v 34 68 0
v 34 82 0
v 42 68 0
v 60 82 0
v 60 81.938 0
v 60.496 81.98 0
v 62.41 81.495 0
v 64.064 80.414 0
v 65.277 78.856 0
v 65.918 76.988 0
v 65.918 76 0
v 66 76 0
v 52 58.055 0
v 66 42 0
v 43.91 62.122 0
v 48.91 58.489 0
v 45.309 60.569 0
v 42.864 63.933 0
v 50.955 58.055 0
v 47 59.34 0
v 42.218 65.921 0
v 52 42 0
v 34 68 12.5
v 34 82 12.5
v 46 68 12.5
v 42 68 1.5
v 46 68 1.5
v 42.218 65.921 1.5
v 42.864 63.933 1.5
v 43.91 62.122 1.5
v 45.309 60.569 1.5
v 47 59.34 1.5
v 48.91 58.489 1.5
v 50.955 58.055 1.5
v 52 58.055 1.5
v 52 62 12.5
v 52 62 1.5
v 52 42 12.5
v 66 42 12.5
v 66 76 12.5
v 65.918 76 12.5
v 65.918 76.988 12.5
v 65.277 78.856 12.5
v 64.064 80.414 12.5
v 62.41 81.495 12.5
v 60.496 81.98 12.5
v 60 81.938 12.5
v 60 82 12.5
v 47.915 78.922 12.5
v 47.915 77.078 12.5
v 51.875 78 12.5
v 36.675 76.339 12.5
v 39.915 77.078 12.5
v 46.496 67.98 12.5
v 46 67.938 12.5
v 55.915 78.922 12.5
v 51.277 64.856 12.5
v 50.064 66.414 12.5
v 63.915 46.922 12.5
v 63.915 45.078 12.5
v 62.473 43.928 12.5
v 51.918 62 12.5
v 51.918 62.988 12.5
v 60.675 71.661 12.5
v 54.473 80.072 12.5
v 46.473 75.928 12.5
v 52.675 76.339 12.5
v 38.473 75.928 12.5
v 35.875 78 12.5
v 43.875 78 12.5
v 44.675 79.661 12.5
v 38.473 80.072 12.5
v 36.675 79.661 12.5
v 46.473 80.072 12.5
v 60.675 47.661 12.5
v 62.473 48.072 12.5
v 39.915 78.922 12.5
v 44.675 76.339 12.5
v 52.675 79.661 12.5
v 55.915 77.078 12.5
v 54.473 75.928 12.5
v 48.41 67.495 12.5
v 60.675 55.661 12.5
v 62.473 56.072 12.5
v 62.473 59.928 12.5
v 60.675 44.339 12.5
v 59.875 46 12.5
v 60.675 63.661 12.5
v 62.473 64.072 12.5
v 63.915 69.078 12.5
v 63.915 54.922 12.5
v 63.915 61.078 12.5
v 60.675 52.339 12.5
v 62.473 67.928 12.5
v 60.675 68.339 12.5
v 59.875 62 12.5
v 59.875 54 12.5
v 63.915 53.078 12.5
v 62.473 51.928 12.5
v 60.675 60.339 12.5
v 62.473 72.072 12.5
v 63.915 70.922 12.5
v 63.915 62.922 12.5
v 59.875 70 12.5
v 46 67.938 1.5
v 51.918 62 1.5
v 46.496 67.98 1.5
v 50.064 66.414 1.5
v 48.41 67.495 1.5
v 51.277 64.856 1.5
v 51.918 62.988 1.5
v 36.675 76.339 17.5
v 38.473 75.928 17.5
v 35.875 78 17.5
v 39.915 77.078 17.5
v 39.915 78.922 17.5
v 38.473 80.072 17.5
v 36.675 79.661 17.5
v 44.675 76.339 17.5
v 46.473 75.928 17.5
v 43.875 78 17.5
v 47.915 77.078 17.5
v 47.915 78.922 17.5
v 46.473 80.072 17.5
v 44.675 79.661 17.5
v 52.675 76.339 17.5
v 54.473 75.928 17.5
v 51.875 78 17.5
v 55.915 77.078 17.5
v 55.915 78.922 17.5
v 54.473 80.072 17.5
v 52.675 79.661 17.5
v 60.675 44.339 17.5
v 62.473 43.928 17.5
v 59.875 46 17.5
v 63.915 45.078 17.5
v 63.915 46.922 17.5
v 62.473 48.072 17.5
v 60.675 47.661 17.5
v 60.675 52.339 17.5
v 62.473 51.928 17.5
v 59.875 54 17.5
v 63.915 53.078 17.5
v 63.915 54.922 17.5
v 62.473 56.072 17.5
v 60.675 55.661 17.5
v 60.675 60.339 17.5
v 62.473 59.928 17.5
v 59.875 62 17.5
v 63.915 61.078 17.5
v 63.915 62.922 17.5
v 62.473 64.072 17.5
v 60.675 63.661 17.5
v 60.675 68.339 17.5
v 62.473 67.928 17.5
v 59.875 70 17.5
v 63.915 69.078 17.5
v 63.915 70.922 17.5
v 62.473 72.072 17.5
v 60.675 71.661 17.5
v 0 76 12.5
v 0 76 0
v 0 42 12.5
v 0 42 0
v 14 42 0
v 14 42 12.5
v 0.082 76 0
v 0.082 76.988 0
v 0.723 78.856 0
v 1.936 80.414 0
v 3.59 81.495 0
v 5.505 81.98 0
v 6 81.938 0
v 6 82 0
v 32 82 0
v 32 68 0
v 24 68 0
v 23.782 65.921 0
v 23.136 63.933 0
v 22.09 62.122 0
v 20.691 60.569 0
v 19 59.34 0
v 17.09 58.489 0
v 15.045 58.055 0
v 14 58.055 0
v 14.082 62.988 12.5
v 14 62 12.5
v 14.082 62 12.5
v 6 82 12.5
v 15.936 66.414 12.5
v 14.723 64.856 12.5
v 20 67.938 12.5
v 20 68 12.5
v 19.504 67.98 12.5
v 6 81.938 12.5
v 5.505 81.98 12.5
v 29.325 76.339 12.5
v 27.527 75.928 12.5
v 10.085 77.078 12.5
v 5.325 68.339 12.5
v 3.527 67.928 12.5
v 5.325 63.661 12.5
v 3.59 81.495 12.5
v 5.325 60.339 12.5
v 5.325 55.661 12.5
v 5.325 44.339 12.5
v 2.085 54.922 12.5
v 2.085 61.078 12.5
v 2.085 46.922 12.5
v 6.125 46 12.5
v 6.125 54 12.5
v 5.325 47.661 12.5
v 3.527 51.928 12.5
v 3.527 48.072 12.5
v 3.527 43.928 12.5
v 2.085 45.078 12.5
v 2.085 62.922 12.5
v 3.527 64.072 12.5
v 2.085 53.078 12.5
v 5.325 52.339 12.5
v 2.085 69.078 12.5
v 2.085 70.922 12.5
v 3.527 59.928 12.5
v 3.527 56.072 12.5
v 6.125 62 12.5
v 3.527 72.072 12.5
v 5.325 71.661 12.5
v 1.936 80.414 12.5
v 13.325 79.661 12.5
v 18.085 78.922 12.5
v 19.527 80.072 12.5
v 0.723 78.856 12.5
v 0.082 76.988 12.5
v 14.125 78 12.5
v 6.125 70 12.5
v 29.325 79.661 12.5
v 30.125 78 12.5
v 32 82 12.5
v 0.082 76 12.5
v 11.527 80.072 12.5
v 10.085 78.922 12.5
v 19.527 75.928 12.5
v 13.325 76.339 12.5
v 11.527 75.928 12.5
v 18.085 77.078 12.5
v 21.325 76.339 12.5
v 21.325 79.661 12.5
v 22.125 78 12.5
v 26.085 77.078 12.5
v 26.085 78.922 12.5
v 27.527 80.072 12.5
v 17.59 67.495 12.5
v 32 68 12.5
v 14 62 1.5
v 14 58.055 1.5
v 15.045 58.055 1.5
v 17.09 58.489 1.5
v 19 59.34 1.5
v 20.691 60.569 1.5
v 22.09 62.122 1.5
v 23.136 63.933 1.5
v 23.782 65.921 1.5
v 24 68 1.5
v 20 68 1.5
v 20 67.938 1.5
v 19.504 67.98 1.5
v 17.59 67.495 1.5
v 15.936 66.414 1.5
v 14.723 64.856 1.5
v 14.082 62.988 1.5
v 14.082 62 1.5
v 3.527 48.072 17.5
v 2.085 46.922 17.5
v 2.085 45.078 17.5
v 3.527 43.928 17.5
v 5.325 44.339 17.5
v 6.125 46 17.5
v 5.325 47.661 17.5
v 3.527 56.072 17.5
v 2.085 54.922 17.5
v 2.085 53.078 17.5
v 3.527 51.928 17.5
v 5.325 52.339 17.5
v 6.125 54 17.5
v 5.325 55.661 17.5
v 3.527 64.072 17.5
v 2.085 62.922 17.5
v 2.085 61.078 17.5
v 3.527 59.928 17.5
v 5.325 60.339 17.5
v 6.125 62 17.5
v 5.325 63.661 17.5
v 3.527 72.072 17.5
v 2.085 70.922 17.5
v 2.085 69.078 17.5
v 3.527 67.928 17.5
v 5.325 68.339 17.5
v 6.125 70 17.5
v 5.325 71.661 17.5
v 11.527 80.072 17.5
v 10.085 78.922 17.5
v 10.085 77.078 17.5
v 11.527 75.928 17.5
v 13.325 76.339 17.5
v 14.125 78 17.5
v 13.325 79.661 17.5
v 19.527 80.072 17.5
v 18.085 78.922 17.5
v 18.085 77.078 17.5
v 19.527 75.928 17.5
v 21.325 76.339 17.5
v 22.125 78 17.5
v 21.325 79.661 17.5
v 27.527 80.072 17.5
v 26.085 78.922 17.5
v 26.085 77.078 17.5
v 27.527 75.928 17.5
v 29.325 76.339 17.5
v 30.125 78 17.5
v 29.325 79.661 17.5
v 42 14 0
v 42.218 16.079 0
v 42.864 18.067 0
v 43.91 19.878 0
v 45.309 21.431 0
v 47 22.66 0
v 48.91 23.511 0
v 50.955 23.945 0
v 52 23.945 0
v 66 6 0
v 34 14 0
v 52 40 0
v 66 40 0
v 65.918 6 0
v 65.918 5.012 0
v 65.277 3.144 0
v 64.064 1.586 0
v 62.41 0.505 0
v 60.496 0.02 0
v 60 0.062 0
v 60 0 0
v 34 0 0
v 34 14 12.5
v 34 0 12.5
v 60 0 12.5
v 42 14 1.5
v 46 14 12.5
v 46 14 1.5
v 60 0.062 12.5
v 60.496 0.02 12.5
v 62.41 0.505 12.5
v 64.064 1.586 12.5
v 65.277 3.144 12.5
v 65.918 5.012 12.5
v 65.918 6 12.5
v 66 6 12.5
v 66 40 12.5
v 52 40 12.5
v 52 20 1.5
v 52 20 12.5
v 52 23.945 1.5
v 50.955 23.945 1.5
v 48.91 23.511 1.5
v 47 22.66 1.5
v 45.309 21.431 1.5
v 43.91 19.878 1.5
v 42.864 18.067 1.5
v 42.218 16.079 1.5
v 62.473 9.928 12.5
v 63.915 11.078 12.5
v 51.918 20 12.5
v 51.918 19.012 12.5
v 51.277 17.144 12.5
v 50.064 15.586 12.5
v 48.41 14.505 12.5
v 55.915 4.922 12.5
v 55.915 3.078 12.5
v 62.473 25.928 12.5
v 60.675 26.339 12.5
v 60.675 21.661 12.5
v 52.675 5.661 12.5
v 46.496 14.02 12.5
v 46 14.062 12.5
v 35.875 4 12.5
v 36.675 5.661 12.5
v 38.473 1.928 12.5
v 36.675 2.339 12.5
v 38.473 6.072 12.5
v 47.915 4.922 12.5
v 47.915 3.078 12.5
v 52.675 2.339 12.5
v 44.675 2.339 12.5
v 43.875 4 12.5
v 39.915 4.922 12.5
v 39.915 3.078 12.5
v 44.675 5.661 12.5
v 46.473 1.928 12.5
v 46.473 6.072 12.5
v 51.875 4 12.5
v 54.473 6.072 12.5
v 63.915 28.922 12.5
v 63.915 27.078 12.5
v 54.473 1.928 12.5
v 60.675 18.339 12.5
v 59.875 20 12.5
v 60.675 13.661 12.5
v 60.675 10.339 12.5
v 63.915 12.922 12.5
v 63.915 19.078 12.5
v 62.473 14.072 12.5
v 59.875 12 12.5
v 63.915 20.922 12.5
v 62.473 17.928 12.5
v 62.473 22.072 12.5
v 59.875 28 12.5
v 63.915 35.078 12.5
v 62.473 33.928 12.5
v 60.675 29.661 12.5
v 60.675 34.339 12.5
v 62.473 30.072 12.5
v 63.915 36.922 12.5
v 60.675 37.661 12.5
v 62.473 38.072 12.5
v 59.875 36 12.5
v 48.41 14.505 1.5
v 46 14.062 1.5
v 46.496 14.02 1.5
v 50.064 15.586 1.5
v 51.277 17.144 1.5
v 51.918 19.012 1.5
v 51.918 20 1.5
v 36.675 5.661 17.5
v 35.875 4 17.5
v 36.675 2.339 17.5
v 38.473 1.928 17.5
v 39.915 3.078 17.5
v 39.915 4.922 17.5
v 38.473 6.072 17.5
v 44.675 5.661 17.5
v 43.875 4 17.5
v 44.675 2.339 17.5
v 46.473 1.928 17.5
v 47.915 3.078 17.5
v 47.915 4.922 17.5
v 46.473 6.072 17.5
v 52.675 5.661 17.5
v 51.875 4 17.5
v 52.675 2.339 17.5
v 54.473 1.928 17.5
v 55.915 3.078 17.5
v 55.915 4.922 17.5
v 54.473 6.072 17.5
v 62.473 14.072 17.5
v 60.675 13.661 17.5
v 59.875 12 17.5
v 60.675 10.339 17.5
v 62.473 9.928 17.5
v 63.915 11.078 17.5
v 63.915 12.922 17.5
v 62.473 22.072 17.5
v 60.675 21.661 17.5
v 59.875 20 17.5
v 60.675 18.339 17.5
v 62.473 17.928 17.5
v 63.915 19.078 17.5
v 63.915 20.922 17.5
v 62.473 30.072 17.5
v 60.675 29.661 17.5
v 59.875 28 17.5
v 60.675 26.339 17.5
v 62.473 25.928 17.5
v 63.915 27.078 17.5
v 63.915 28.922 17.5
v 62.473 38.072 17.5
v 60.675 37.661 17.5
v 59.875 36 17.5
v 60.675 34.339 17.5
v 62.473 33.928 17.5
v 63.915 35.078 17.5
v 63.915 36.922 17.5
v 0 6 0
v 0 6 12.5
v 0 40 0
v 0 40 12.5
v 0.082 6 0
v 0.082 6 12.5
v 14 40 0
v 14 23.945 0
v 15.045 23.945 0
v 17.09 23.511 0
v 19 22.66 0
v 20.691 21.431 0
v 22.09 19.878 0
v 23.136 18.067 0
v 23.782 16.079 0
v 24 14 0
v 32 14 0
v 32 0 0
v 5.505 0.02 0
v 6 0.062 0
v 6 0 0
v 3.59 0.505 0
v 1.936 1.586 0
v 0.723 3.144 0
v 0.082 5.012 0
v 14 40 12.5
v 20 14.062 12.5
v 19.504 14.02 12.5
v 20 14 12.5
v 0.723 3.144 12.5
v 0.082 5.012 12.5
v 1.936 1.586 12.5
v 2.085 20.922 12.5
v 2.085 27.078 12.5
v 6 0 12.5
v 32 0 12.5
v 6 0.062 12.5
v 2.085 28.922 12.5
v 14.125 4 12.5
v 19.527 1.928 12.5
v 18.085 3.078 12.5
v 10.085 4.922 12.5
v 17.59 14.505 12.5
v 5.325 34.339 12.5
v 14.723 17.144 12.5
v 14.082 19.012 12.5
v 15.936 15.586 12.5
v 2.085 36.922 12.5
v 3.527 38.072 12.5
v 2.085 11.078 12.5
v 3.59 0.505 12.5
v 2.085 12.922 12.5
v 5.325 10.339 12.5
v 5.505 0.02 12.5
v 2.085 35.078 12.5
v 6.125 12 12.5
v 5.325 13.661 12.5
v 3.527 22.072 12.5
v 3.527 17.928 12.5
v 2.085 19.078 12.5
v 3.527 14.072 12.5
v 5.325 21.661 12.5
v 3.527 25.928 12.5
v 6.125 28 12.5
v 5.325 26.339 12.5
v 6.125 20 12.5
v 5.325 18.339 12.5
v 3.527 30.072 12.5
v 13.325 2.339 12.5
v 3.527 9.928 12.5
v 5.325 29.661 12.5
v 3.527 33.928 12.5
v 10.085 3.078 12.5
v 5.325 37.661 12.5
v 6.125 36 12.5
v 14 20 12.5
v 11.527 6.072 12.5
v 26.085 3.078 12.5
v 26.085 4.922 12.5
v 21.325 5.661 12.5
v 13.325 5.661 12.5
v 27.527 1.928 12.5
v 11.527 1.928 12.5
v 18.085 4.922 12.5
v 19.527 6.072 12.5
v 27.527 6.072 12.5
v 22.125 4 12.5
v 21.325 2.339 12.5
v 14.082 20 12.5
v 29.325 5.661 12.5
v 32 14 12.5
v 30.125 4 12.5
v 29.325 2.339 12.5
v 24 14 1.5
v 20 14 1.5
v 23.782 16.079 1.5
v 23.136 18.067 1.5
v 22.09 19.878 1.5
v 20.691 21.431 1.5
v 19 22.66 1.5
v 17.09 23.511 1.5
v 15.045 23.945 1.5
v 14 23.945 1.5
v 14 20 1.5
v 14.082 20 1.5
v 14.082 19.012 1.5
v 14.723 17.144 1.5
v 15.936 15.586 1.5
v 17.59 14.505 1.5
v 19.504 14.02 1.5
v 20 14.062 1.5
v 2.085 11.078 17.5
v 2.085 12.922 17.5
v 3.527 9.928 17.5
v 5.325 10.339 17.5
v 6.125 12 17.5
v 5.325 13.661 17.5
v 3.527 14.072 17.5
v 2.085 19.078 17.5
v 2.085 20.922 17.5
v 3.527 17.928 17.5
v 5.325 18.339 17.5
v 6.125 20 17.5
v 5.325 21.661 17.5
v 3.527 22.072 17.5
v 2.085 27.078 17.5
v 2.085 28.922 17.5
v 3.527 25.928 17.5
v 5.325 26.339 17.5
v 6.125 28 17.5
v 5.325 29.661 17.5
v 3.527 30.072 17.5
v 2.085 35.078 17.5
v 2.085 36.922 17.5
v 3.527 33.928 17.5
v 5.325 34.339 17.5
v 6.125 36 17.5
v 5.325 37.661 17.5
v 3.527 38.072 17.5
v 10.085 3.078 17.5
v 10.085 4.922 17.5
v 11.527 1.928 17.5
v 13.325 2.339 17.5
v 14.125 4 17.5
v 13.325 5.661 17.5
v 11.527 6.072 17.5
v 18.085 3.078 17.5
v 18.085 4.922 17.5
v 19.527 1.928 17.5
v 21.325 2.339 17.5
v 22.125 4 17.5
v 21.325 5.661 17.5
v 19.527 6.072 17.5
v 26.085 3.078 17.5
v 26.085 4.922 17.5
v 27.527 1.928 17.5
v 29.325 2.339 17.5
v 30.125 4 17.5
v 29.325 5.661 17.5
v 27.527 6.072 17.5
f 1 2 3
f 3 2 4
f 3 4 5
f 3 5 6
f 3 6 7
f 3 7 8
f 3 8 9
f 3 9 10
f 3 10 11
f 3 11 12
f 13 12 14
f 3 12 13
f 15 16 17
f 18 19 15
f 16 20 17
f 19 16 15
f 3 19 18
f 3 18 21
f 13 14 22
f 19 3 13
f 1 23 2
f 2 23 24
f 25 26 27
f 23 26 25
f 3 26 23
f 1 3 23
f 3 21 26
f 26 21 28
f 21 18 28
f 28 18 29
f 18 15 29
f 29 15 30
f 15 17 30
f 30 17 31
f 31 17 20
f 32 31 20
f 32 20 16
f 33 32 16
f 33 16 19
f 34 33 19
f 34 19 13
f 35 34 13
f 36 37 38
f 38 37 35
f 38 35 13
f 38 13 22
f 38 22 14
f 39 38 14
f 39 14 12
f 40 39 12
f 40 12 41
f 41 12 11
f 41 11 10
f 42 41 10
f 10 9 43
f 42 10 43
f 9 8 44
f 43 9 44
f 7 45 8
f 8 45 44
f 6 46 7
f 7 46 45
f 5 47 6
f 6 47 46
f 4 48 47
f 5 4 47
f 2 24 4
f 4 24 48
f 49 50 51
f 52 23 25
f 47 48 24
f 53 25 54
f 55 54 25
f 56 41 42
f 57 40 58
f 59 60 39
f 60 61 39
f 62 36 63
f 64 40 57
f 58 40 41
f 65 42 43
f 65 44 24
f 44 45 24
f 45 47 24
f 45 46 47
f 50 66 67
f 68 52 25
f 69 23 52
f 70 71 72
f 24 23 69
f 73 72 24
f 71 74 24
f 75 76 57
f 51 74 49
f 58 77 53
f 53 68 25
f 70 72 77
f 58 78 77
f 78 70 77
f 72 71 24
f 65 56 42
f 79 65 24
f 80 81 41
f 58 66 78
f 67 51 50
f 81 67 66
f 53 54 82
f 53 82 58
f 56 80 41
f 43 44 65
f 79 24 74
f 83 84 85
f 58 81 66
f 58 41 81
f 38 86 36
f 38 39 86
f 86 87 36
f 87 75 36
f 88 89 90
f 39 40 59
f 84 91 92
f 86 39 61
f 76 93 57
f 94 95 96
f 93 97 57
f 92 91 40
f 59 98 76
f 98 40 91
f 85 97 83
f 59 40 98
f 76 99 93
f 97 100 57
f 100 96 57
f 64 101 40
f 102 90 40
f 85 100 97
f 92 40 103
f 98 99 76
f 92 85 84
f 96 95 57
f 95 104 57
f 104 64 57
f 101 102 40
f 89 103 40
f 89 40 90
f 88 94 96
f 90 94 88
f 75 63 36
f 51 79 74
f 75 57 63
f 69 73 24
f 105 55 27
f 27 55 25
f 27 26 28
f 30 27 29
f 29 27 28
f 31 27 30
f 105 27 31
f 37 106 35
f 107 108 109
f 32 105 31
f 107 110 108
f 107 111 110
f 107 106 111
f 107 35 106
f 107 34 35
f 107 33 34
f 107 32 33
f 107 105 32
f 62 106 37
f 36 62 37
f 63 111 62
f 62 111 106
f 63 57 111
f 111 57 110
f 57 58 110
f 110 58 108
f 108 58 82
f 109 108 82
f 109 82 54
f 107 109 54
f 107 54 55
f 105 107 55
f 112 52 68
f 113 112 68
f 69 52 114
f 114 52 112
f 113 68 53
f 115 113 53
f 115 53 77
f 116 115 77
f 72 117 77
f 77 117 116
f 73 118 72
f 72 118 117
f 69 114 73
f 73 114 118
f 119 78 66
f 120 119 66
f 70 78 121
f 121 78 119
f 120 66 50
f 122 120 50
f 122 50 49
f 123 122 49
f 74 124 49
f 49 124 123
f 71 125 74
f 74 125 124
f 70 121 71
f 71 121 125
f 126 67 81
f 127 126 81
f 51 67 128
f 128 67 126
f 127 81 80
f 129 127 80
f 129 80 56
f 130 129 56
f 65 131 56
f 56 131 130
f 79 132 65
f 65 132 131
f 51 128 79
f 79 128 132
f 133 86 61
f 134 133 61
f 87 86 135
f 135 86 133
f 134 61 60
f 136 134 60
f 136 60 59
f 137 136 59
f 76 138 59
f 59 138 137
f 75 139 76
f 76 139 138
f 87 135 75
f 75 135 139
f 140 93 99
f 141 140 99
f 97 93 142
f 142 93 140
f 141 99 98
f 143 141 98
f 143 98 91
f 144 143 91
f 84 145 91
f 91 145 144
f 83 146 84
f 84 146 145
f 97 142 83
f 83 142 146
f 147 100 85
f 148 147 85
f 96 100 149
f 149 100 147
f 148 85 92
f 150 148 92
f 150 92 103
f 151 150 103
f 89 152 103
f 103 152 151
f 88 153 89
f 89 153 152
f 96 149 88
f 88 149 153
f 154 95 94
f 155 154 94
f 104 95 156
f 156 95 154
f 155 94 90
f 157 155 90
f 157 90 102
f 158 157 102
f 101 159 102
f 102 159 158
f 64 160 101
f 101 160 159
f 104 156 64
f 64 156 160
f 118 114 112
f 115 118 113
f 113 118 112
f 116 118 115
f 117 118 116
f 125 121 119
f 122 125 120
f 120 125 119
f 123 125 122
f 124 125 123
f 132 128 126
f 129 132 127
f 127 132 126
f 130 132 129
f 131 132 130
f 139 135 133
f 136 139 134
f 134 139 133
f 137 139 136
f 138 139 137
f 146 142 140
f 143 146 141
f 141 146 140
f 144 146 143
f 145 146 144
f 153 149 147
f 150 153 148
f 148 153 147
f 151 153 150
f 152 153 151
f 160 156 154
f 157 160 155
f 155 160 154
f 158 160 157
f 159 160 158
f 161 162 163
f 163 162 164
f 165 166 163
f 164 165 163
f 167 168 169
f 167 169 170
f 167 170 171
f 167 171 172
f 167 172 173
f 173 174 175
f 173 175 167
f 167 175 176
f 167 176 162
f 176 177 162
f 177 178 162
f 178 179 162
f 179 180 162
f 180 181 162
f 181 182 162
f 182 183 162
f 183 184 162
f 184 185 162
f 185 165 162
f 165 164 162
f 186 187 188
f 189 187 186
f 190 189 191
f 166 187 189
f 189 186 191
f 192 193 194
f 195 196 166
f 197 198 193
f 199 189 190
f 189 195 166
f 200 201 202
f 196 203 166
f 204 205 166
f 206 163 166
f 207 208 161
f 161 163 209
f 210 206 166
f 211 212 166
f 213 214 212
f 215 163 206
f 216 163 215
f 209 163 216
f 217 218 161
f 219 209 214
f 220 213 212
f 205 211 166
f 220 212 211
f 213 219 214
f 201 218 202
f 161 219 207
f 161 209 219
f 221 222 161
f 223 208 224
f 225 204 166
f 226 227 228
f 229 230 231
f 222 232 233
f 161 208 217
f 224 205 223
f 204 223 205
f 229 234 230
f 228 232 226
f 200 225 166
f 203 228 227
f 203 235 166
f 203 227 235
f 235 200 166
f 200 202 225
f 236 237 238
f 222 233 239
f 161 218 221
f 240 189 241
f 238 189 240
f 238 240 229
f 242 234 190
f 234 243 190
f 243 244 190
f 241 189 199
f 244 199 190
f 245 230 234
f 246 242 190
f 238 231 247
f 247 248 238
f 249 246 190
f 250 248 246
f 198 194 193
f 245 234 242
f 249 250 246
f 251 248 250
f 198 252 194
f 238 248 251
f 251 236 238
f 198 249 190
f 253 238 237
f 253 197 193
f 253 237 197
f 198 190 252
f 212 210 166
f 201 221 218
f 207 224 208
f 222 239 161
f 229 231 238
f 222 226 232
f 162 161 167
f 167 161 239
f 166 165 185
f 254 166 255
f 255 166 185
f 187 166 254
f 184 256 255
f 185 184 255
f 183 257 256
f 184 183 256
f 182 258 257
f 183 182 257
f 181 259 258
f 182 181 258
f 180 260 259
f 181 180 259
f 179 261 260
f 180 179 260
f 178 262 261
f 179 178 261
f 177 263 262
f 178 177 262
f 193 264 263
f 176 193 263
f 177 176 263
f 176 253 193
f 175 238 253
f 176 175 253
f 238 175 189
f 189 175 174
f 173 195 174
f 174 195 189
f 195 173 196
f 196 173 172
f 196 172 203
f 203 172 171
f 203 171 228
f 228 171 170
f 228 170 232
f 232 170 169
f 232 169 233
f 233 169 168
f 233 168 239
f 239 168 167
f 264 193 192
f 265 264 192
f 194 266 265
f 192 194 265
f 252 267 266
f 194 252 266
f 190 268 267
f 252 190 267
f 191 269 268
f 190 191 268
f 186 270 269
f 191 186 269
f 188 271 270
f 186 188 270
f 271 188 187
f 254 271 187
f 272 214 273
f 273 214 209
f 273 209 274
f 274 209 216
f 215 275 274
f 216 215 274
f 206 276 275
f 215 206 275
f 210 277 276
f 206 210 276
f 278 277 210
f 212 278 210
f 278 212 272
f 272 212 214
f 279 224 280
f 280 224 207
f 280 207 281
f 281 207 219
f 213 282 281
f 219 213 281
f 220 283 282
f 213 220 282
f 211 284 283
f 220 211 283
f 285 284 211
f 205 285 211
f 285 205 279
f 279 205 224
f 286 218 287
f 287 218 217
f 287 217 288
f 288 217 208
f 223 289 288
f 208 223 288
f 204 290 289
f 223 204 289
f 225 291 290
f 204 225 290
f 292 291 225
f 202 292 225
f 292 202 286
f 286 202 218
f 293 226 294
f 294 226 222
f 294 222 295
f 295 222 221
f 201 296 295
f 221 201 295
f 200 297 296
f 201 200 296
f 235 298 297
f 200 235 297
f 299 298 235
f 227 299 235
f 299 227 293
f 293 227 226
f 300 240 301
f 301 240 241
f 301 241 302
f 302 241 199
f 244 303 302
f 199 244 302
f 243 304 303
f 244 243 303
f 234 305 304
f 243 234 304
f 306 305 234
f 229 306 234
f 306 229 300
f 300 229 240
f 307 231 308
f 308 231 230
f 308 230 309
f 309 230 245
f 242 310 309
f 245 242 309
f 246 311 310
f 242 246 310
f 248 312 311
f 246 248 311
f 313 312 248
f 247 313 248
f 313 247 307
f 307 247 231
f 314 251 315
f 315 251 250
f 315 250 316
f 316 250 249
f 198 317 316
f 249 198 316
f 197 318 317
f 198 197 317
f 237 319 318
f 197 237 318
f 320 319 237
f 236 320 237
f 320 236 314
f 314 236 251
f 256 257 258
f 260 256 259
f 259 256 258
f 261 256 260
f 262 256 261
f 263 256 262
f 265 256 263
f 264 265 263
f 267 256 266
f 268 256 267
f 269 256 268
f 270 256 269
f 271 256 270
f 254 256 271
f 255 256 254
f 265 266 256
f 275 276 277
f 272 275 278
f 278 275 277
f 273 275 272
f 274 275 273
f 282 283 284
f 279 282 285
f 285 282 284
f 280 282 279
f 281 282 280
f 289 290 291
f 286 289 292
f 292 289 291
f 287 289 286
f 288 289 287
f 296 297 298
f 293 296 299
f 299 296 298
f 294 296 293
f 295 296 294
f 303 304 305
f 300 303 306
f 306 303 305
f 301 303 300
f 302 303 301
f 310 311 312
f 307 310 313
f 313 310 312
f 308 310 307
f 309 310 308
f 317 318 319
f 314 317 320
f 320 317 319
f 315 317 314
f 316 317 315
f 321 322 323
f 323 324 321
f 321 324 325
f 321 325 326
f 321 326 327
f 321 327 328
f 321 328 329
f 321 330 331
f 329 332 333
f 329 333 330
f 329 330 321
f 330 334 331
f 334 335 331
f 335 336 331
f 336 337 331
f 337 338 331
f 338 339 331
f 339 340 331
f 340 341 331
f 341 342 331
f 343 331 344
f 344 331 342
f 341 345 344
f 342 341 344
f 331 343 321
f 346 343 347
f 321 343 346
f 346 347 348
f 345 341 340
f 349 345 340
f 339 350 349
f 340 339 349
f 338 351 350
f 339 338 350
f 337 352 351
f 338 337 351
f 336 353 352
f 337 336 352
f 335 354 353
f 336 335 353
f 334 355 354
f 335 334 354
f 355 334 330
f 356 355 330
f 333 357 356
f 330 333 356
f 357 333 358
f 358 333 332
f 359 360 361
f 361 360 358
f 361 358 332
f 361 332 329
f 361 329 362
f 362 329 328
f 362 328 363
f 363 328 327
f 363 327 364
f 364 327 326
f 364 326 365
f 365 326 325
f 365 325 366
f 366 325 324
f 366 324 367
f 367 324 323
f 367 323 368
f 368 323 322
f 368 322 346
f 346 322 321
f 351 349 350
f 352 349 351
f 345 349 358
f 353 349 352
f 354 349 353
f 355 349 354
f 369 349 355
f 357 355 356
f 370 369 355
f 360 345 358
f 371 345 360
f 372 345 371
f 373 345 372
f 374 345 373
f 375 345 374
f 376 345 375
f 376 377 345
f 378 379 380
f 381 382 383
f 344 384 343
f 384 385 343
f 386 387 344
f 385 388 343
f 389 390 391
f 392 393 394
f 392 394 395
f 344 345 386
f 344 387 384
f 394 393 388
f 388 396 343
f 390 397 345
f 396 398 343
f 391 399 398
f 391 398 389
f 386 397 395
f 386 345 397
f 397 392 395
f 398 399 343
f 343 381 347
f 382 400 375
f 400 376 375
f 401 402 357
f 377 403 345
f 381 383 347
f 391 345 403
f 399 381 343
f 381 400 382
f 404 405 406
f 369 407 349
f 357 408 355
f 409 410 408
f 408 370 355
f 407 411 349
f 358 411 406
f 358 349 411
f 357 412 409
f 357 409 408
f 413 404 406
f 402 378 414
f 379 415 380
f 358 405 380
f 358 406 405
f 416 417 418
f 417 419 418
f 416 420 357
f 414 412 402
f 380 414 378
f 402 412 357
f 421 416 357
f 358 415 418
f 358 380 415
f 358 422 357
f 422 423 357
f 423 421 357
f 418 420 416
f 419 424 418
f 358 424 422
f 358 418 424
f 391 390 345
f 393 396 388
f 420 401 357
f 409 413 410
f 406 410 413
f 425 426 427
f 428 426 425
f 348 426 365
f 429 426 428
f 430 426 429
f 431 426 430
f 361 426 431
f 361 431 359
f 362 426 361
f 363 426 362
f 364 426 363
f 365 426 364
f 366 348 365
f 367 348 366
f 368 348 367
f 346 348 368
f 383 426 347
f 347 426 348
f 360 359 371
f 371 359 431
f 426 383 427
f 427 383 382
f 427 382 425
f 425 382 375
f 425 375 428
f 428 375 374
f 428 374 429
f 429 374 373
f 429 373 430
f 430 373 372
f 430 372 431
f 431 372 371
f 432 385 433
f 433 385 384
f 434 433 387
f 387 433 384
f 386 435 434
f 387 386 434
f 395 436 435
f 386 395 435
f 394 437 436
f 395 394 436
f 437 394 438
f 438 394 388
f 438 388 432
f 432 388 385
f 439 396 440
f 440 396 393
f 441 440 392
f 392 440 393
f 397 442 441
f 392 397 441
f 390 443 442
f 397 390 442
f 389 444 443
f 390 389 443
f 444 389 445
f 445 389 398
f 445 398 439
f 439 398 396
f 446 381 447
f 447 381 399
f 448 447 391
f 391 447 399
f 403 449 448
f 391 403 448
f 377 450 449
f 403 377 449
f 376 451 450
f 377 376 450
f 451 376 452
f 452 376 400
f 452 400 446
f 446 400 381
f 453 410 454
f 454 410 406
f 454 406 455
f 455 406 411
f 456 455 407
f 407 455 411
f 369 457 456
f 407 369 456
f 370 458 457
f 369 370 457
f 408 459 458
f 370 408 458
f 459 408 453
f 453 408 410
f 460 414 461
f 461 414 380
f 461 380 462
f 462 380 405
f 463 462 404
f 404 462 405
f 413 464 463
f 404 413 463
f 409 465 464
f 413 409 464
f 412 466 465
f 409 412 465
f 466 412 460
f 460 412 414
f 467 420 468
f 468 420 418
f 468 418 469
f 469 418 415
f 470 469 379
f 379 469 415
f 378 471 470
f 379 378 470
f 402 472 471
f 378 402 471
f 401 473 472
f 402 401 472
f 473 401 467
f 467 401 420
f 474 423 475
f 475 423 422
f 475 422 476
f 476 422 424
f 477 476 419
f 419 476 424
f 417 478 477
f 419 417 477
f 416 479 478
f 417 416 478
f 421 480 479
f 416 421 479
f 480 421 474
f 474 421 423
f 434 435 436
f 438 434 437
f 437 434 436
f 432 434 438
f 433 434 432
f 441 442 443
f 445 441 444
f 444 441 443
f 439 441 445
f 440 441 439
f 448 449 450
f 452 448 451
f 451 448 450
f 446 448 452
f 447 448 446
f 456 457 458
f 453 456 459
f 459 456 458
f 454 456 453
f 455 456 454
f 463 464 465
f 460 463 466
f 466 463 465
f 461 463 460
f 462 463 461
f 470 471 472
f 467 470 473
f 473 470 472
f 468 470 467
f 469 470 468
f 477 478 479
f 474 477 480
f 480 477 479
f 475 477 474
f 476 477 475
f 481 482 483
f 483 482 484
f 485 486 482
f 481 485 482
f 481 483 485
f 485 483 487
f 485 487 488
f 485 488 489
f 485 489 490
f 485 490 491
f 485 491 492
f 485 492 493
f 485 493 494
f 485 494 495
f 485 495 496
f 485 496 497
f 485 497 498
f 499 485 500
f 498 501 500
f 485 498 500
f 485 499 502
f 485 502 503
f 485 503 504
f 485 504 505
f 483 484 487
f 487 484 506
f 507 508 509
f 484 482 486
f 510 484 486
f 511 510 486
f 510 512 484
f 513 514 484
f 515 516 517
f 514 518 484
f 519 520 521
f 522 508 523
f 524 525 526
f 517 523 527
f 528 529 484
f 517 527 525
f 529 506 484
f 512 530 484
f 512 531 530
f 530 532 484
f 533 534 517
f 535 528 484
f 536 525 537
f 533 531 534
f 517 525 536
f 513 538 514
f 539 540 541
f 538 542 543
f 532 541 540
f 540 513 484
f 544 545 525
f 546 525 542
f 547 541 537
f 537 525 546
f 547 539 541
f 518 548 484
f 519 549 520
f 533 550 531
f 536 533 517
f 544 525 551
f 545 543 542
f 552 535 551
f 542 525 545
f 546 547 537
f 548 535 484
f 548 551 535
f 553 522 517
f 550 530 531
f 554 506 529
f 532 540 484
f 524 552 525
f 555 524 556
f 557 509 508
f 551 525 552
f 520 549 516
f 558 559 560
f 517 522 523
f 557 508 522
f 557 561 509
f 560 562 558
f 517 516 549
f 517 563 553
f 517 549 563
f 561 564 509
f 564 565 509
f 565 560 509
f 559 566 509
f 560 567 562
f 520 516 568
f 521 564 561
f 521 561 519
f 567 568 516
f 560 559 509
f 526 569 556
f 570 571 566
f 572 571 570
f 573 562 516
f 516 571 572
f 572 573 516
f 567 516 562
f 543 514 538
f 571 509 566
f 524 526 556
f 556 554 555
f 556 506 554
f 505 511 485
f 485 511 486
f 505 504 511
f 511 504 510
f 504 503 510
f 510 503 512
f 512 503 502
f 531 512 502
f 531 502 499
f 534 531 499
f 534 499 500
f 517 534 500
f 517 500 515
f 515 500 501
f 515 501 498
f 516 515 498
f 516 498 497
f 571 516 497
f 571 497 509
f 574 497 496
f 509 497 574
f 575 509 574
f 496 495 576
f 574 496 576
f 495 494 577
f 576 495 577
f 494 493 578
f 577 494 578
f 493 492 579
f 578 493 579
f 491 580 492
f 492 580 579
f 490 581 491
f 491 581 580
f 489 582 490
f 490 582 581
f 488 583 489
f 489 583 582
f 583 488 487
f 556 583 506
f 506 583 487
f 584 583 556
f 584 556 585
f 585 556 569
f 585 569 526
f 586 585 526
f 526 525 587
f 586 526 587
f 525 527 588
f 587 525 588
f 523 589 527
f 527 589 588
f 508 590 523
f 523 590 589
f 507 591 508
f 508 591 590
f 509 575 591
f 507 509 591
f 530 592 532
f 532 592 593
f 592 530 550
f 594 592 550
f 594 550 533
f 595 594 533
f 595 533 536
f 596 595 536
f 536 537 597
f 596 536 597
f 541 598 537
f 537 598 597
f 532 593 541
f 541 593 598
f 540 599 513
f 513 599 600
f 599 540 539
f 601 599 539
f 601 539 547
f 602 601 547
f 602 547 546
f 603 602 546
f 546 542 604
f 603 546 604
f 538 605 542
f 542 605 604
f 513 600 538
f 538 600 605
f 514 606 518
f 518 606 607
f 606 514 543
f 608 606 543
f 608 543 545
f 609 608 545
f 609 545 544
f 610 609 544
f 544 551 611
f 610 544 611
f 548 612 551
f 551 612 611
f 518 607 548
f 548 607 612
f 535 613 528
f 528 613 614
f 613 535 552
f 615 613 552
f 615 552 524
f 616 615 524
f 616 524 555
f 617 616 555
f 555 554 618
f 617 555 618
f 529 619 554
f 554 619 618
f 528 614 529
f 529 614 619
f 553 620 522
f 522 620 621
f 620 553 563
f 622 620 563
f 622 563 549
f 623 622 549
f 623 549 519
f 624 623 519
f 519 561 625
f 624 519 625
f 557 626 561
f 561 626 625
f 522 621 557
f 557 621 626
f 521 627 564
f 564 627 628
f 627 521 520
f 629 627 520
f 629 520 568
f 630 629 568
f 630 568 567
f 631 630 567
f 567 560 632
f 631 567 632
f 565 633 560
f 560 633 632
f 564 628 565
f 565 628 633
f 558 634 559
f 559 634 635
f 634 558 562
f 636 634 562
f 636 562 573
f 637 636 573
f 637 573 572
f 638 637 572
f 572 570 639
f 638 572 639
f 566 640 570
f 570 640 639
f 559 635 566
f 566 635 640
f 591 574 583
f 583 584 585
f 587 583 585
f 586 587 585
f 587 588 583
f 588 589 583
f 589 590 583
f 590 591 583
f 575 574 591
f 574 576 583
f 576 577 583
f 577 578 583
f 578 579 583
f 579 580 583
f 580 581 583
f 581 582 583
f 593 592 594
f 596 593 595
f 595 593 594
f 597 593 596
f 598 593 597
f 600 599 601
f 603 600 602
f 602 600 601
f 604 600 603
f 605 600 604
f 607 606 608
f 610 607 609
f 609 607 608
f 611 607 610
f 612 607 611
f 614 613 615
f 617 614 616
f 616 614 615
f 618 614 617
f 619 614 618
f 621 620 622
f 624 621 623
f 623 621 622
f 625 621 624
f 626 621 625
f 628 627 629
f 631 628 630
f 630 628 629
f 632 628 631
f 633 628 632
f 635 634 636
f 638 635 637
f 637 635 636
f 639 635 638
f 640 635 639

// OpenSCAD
beam_unit = 8;
base_width = 88; // 11 units
base_height = 153; // 19 units

corner_radius = 12;

phone_thickness = 11;
tab_thickness = 1.5;
tab_diameter = 20;

phone_width = 60;
phone_height = 125;


combined_thickness = phone_thickness + tab_thickness;
brick_height = beam_unit * 5;
brick_width  = beam_unit * 4;

peg_height = 5;
peg_diameter = 4.25;

module peg() {
	offset = beam_unit/2;
	translate([offset,offset,combined_thickness])
		cylinder(d=peg_diameter,h=peg_height);
}

module block() {
	x_phone_offset = base_width/2-phone_width/2;
	y_phone_offset = base_height/2-phone_height/2;
	union() {
		difference() {
			cube(size=[brick_width,brick_height,combined_thickness]);
			translate([x_phone_offset,y_phone_offset,-1])
				cube(size=[phone_width,phone_height,combined_thickness+2]);
			translate([0,0,-2])
				edge();
			translate([0,0,2])
				edge();
		}
		translate([x_phone_offset,y_phone_offset,0]) {
			edge();
			cylinder(d=tab_diameter,h=tab_thickness);
		}
		
		for ( i = [1:3] ) {
			translate([i*8,0,0])
				peg();
		}
		for ( i = [1:4] ) {
			translate([0,i*8,0])
				peg();
		}
	}
}

module edge() {
	difference() {
		cube(size=[corner_radius/2,corner_radius/2,combined_thickness]);
		translate([corner_radius/2,corner_radius/2,-1])
			cylinder(d=corner_radius,h=combined_thickness+2);
	}
	
}

block();

translate([(brick_width*2)+2,0,0])
	mirror([1,0,0])
	block();

translate([0,(brick_height*2)+2,0])
	mirror([0,1,0])
	block();

translate([(brick_width*2)+2,(brick_height*2)+2,0])
	rotate([0,0,180])
	block();
